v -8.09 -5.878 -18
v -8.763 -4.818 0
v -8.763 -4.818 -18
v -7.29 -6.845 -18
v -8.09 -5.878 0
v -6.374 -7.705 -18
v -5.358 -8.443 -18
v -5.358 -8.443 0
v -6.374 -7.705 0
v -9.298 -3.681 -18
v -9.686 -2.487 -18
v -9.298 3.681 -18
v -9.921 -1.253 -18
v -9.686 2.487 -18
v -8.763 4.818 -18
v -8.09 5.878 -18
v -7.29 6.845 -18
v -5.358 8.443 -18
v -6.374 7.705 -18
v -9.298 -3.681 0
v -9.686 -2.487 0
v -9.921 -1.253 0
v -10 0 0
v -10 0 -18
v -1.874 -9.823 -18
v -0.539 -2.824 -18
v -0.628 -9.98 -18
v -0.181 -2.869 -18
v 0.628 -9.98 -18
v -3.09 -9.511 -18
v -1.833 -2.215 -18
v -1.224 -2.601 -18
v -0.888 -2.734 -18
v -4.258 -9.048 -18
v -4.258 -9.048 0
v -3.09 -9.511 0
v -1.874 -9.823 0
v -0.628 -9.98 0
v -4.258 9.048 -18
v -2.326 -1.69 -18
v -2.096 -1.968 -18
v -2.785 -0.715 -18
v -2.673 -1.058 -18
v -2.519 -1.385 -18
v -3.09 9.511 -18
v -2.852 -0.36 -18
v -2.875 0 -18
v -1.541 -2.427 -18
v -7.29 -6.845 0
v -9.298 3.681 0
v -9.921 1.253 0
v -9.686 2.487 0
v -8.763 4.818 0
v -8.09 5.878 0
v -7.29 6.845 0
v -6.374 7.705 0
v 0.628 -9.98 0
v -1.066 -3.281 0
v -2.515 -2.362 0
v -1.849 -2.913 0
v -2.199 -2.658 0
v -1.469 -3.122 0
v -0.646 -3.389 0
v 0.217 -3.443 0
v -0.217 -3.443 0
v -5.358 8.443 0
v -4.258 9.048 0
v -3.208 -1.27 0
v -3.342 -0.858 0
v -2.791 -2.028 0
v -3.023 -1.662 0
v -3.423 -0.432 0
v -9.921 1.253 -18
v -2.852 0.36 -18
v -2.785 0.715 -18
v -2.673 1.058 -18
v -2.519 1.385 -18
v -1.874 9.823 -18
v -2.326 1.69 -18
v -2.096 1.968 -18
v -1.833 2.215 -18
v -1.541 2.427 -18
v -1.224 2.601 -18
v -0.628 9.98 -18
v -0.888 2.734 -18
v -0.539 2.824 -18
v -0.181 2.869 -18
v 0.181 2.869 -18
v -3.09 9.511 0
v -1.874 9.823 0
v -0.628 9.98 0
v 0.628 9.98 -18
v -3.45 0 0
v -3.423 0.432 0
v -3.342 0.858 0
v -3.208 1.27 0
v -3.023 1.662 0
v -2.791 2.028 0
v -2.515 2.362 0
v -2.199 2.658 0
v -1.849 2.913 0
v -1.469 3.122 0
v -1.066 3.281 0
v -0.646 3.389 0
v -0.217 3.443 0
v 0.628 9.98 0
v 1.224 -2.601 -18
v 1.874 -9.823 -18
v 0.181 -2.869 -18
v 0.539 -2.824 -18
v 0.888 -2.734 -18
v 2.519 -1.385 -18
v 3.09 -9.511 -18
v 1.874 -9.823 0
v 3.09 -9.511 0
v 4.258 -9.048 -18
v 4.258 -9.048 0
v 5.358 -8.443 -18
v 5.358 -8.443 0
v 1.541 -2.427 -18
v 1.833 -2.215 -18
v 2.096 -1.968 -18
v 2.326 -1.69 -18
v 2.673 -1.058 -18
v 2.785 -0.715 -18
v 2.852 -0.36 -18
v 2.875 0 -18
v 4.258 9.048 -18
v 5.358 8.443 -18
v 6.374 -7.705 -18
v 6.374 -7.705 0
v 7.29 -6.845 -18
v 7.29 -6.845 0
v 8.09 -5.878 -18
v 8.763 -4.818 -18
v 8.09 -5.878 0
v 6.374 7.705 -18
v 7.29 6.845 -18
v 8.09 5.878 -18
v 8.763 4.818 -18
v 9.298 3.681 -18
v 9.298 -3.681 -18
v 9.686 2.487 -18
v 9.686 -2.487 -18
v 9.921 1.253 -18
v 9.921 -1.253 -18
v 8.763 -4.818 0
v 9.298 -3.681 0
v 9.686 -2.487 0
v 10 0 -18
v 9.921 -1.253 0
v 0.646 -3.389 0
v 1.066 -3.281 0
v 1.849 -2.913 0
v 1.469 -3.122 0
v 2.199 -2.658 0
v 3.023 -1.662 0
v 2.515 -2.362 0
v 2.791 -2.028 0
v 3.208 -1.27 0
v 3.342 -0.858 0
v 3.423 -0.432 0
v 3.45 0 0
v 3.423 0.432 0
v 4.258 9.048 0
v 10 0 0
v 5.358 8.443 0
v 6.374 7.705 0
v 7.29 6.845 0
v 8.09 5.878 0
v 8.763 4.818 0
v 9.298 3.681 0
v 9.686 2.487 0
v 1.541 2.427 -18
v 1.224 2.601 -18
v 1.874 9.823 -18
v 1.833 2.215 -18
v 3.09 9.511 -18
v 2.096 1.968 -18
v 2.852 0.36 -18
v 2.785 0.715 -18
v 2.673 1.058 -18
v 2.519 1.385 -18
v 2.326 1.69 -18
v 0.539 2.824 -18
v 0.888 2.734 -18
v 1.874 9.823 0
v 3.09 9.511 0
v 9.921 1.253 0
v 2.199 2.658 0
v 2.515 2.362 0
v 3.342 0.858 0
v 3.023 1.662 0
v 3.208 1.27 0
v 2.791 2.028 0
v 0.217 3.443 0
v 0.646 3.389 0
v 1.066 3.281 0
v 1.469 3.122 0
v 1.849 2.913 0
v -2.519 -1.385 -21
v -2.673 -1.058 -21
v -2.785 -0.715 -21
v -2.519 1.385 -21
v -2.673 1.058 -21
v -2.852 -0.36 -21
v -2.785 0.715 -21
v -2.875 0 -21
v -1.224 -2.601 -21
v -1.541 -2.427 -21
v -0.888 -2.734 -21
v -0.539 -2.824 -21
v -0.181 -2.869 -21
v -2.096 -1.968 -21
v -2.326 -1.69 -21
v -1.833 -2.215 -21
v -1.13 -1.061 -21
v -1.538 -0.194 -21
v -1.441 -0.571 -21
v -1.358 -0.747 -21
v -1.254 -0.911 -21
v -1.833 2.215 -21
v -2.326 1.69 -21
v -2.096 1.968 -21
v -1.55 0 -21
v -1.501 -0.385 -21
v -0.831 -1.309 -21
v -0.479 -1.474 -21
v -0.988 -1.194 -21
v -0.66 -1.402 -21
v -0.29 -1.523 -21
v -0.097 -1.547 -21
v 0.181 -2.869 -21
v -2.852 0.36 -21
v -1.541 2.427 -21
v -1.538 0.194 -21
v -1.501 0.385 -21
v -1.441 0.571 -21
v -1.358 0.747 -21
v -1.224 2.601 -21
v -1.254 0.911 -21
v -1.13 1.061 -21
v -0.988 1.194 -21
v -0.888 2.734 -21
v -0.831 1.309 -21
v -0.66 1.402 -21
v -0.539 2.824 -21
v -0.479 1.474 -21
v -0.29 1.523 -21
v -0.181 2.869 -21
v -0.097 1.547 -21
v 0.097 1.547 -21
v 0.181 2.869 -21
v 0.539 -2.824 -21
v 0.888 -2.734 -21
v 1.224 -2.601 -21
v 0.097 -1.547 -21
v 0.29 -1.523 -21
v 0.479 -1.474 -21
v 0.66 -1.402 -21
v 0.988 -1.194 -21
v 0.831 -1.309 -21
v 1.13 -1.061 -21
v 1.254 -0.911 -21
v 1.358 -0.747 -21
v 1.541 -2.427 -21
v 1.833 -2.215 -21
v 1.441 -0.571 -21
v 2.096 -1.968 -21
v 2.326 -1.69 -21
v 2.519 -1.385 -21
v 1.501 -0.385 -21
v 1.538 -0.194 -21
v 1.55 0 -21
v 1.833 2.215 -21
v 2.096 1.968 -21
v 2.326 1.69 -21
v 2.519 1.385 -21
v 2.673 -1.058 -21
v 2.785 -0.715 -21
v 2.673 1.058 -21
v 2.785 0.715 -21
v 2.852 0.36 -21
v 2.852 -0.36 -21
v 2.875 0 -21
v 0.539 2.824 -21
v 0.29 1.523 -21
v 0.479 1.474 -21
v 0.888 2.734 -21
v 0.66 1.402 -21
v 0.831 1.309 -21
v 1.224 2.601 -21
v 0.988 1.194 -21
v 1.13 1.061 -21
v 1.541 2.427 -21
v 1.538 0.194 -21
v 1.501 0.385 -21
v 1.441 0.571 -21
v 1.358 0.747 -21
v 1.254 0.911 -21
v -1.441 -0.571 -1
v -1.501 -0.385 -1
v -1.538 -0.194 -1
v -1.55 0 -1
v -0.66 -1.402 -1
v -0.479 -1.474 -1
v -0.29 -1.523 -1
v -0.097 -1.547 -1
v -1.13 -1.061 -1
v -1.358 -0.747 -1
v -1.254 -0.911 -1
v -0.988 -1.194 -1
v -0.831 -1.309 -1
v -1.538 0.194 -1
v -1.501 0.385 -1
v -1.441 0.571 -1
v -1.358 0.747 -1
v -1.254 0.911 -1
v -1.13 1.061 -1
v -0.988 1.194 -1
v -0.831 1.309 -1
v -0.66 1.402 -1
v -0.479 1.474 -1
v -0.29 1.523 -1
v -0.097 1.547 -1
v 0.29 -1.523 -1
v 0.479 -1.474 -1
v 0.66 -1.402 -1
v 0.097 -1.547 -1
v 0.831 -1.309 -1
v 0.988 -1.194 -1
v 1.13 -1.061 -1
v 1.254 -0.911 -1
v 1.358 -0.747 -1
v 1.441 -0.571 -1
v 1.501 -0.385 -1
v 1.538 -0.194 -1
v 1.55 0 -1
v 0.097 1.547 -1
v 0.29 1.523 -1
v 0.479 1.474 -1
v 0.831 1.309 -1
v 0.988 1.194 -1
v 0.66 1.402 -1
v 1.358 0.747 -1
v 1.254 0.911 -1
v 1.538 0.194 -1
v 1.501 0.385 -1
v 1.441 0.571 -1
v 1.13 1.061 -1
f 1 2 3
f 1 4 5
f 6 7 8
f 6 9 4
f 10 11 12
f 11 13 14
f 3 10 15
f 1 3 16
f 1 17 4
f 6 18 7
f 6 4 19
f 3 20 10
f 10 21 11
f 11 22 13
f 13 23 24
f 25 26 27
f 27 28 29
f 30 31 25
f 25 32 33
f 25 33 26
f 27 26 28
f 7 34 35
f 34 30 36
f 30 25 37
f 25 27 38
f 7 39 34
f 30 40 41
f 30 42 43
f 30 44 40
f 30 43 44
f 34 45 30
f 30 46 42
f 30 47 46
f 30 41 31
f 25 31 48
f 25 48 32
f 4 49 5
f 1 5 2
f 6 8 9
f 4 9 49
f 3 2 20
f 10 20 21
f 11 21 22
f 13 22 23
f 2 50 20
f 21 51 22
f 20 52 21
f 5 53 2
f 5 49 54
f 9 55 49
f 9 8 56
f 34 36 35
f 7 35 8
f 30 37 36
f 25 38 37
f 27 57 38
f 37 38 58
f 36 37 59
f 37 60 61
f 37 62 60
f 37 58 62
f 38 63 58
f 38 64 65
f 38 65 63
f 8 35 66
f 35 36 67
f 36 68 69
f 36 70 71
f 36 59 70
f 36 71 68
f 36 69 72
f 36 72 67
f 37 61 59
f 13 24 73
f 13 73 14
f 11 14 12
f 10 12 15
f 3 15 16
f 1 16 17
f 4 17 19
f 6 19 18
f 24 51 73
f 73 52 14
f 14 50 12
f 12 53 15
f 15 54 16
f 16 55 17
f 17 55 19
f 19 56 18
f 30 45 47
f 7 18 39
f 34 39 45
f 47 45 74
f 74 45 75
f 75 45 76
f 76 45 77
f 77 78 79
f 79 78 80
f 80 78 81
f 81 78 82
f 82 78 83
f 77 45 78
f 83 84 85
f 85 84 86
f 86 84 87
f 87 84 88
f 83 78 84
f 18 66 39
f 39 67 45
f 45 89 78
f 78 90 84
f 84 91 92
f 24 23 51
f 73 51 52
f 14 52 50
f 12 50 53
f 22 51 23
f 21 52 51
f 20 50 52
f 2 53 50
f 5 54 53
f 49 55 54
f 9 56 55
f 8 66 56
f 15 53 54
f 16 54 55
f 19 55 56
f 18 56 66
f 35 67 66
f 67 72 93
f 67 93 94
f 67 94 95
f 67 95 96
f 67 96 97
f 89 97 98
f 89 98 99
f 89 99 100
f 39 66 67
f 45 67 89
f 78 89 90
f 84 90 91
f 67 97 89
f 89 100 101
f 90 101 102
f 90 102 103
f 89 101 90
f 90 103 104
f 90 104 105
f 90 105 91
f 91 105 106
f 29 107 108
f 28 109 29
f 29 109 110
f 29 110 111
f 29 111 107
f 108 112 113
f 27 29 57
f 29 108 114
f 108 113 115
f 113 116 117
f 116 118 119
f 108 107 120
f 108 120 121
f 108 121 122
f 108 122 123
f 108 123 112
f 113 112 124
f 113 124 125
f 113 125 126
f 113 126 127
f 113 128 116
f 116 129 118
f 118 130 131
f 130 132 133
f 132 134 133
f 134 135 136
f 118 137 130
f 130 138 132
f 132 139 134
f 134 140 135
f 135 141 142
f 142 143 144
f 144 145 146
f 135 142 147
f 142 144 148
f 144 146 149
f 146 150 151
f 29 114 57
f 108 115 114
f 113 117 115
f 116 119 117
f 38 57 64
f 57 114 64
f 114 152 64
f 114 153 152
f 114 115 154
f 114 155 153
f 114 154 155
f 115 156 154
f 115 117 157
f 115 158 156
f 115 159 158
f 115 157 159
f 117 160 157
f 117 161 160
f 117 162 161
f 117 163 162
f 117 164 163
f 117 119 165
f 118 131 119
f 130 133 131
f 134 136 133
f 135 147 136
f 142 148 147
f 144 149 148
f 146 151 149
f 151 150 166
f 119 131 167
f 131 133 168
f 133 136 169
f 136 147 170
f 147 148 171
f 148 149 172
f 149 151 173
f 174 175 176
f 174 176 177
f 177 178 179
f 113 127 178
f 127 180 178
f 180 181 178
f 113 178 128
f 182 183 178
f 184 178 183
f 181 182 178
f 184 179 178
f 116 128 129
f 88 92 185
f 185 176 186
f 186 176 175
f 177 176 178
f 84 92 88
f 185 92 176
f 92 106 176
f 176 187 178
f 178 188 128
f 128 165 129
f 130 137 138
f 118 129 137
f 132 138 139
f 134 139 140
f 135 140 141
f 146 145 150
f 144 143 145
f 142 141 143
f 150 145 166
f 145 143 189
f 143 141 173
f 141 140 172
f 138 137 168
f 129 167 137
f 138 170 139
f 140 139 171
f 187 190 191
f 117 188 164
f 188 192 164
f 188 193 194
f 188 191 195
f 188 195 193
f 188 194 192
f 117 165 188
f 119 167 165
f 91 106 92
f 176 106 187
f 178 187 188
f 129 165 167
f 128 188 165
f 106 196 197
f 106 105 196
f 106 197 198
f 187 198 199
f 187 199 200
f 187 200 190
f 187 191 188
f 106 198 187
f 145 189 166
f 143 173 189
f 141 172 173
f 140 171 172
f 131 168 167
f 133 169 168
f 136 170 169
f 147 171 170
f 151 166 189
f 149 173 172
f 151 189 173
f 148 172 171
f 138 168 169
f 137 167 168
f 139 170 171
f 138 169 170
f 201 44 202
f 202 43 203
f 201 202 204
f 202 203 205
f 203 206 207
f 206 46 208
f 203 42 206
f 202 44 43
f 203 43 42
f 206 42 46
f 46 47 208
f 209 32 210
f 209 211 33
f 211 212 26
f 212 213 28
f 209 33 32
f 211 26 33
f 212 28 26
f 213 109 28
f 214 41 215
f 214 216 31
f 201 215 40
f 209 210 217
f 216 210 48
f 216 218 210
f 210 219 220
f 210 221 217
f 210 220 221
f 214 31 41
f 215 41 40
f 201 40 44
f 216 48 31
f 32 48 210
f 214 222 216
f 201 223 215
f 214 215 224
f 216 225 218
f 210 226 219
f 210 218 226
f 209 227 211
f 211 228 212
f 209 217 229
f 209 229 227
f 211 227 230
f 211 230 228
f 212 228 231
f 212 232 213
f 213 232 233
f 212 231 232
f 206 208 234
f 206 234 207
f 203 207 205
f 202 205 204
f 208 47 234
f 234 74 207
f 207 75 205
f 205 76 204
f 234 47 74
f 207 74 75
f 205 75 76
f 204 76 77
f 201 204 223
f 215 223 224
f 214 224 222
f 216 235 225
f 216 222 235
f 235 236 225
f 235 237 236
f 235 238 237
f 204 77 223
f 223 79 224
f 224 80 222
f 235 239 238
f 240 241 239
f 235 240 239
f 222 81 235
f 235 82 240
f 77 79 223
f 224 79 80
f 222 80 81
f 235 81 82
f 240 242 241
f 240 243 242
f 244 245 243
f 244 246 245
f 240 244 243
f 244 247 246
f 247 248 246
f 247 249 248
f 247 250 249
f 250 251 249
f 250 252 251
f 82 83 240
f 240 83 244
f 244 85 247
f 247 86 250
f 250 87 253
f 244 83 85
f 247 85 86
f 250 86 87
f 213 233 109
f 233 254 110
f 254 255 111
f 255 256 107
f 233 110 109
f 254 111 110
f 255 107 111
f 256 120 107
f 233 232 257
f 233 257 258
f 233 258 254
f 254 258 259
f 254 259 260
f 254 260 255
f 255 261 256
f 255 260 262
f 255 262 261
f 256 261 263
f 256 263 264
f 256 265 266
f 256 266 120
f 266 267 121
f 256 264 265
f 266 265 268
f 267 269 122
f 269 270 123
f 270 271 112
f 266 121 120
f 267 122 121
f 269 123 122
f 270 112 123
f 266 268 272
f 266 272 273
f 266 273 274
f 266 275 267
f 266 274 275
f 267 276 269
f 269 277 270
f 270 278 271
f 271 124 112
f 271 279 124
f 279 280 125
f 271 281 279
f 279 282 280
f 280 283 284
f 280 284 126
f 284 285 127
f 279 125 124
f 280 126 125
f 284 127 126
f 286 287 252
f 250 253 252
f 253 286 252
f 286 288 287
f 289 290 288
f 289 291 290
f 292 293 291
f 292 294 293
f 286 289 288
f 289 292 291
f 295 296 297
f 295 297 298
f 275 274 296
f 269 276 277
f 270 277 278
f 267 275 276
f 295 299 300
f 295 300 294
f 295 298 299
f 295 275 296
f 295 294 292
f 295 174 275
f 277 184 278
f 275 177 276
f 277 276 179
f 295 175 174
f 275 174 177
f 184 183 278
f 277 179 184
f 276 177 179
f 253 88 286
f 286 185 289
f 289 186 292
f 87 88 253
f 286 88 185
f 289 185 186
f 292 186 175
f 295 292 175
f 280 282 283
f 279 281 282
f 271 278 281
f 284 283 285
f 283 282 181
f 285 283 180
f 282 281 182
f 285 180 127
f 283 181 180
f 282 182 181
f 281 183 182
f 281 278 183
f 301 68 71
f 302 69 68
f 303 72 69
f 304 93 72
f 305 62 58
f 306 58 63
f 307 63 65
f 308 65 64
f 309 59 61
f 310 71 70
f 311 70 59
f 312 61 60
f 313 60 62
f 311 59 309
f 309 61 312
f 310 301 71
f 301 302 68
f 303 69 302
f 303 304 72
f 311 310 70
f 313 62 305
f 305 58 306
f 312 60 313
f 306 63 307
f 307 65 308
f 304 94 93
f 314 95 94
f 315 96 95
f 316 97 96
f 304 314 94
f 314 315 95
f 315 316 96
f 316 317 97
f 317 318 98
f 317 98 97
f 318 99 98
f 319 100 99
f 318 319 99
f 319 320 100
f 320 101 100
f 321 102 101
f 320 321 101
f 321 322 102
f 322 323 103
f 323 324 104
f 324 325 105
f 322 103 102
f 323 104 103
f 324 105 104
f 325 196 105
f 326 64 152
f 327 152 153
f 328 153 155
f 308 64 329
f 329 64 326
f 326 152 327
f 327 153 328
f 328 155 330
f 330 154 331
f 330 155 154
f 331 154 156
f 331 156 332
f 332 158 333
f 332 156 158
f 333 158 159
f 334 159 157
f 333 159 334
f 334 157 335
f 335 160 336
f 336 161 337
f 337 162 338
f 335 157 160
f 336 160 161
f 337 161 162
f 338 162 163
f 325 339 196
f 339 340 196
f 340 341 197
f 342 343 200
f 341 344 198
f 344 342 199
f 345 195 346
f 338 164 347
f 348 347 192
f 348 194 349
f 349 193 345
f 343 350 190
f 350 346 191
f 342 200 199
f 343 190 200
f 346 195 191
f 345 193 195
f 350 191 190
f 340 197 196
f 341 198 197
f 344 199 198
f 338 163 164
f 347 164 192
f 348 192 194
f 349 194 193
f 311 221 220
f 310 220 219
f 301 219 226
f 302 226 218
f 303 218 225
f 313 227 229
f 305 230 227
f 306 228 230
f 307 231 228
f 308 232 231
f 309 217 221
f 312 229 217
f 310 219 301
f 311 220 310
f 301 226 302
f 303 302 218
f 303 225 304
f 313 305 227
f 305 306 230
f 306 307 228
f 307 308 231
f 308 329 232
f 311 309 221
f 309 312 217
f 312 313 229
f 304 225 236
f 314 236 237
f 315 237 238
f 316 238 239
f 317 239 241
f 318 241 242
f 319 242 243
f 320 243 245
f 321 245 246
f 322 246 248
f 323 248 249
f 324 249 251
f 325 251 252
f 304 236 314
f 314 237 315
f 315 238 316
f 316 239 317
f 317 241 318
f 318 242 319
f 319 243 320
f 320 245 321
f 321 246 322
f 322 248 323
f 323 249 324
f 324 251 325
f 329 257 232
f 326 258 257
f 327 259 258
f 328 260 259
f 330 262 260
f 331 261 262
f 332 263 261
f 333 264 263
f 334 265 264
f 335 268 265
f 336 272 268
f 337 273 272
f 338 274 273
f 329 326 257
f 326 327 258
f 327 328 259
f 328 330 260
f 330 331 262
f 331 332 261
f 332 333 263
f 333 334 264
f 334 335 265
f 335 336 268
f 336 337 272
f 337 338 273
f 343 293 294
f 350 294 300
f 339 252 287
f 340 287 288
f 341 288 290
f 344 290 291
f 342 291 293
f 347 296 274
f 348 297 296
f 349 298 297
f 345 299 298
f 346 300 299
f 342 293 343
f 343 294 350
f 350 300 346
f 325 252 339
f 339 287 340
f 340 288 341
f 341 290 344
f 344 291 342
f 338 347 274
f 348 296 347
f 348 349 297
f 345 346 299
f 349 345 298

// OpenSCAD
$fn = 50;

difference() {
	union() {
		translate(v = [0, 0, -18.0]) {
			cylinder(h = 18, r = 10.0);
		}
		#translate(v = [0, 0, -21.0]) {
			cylinder(h = 21, r = 2.875);
		}
	}
	union() {
		translate(v = [0, 0, 0]) {
			rotate(a = [0, 0, 0]) {
				difference() {
					union() {
						translate(v = [0, 0, -21.0]) {
							cylinder(h = 21, r = 1.25);
						}
						translate(v = [0, 0, -1.0]) {
							cylinder(h = 1.0, r1 = 1.55, r2 = 3.45);
						}
						translate(v = [0, 0, -21.0]) {
							cylinder(h = 21, r = 1.55);
						}
						translate(v = [0, 0, -21.0]) {
							cylinder(h = 21, r = 1.25);
						}
					}
					union();
				}
			}
		}
	}
}
